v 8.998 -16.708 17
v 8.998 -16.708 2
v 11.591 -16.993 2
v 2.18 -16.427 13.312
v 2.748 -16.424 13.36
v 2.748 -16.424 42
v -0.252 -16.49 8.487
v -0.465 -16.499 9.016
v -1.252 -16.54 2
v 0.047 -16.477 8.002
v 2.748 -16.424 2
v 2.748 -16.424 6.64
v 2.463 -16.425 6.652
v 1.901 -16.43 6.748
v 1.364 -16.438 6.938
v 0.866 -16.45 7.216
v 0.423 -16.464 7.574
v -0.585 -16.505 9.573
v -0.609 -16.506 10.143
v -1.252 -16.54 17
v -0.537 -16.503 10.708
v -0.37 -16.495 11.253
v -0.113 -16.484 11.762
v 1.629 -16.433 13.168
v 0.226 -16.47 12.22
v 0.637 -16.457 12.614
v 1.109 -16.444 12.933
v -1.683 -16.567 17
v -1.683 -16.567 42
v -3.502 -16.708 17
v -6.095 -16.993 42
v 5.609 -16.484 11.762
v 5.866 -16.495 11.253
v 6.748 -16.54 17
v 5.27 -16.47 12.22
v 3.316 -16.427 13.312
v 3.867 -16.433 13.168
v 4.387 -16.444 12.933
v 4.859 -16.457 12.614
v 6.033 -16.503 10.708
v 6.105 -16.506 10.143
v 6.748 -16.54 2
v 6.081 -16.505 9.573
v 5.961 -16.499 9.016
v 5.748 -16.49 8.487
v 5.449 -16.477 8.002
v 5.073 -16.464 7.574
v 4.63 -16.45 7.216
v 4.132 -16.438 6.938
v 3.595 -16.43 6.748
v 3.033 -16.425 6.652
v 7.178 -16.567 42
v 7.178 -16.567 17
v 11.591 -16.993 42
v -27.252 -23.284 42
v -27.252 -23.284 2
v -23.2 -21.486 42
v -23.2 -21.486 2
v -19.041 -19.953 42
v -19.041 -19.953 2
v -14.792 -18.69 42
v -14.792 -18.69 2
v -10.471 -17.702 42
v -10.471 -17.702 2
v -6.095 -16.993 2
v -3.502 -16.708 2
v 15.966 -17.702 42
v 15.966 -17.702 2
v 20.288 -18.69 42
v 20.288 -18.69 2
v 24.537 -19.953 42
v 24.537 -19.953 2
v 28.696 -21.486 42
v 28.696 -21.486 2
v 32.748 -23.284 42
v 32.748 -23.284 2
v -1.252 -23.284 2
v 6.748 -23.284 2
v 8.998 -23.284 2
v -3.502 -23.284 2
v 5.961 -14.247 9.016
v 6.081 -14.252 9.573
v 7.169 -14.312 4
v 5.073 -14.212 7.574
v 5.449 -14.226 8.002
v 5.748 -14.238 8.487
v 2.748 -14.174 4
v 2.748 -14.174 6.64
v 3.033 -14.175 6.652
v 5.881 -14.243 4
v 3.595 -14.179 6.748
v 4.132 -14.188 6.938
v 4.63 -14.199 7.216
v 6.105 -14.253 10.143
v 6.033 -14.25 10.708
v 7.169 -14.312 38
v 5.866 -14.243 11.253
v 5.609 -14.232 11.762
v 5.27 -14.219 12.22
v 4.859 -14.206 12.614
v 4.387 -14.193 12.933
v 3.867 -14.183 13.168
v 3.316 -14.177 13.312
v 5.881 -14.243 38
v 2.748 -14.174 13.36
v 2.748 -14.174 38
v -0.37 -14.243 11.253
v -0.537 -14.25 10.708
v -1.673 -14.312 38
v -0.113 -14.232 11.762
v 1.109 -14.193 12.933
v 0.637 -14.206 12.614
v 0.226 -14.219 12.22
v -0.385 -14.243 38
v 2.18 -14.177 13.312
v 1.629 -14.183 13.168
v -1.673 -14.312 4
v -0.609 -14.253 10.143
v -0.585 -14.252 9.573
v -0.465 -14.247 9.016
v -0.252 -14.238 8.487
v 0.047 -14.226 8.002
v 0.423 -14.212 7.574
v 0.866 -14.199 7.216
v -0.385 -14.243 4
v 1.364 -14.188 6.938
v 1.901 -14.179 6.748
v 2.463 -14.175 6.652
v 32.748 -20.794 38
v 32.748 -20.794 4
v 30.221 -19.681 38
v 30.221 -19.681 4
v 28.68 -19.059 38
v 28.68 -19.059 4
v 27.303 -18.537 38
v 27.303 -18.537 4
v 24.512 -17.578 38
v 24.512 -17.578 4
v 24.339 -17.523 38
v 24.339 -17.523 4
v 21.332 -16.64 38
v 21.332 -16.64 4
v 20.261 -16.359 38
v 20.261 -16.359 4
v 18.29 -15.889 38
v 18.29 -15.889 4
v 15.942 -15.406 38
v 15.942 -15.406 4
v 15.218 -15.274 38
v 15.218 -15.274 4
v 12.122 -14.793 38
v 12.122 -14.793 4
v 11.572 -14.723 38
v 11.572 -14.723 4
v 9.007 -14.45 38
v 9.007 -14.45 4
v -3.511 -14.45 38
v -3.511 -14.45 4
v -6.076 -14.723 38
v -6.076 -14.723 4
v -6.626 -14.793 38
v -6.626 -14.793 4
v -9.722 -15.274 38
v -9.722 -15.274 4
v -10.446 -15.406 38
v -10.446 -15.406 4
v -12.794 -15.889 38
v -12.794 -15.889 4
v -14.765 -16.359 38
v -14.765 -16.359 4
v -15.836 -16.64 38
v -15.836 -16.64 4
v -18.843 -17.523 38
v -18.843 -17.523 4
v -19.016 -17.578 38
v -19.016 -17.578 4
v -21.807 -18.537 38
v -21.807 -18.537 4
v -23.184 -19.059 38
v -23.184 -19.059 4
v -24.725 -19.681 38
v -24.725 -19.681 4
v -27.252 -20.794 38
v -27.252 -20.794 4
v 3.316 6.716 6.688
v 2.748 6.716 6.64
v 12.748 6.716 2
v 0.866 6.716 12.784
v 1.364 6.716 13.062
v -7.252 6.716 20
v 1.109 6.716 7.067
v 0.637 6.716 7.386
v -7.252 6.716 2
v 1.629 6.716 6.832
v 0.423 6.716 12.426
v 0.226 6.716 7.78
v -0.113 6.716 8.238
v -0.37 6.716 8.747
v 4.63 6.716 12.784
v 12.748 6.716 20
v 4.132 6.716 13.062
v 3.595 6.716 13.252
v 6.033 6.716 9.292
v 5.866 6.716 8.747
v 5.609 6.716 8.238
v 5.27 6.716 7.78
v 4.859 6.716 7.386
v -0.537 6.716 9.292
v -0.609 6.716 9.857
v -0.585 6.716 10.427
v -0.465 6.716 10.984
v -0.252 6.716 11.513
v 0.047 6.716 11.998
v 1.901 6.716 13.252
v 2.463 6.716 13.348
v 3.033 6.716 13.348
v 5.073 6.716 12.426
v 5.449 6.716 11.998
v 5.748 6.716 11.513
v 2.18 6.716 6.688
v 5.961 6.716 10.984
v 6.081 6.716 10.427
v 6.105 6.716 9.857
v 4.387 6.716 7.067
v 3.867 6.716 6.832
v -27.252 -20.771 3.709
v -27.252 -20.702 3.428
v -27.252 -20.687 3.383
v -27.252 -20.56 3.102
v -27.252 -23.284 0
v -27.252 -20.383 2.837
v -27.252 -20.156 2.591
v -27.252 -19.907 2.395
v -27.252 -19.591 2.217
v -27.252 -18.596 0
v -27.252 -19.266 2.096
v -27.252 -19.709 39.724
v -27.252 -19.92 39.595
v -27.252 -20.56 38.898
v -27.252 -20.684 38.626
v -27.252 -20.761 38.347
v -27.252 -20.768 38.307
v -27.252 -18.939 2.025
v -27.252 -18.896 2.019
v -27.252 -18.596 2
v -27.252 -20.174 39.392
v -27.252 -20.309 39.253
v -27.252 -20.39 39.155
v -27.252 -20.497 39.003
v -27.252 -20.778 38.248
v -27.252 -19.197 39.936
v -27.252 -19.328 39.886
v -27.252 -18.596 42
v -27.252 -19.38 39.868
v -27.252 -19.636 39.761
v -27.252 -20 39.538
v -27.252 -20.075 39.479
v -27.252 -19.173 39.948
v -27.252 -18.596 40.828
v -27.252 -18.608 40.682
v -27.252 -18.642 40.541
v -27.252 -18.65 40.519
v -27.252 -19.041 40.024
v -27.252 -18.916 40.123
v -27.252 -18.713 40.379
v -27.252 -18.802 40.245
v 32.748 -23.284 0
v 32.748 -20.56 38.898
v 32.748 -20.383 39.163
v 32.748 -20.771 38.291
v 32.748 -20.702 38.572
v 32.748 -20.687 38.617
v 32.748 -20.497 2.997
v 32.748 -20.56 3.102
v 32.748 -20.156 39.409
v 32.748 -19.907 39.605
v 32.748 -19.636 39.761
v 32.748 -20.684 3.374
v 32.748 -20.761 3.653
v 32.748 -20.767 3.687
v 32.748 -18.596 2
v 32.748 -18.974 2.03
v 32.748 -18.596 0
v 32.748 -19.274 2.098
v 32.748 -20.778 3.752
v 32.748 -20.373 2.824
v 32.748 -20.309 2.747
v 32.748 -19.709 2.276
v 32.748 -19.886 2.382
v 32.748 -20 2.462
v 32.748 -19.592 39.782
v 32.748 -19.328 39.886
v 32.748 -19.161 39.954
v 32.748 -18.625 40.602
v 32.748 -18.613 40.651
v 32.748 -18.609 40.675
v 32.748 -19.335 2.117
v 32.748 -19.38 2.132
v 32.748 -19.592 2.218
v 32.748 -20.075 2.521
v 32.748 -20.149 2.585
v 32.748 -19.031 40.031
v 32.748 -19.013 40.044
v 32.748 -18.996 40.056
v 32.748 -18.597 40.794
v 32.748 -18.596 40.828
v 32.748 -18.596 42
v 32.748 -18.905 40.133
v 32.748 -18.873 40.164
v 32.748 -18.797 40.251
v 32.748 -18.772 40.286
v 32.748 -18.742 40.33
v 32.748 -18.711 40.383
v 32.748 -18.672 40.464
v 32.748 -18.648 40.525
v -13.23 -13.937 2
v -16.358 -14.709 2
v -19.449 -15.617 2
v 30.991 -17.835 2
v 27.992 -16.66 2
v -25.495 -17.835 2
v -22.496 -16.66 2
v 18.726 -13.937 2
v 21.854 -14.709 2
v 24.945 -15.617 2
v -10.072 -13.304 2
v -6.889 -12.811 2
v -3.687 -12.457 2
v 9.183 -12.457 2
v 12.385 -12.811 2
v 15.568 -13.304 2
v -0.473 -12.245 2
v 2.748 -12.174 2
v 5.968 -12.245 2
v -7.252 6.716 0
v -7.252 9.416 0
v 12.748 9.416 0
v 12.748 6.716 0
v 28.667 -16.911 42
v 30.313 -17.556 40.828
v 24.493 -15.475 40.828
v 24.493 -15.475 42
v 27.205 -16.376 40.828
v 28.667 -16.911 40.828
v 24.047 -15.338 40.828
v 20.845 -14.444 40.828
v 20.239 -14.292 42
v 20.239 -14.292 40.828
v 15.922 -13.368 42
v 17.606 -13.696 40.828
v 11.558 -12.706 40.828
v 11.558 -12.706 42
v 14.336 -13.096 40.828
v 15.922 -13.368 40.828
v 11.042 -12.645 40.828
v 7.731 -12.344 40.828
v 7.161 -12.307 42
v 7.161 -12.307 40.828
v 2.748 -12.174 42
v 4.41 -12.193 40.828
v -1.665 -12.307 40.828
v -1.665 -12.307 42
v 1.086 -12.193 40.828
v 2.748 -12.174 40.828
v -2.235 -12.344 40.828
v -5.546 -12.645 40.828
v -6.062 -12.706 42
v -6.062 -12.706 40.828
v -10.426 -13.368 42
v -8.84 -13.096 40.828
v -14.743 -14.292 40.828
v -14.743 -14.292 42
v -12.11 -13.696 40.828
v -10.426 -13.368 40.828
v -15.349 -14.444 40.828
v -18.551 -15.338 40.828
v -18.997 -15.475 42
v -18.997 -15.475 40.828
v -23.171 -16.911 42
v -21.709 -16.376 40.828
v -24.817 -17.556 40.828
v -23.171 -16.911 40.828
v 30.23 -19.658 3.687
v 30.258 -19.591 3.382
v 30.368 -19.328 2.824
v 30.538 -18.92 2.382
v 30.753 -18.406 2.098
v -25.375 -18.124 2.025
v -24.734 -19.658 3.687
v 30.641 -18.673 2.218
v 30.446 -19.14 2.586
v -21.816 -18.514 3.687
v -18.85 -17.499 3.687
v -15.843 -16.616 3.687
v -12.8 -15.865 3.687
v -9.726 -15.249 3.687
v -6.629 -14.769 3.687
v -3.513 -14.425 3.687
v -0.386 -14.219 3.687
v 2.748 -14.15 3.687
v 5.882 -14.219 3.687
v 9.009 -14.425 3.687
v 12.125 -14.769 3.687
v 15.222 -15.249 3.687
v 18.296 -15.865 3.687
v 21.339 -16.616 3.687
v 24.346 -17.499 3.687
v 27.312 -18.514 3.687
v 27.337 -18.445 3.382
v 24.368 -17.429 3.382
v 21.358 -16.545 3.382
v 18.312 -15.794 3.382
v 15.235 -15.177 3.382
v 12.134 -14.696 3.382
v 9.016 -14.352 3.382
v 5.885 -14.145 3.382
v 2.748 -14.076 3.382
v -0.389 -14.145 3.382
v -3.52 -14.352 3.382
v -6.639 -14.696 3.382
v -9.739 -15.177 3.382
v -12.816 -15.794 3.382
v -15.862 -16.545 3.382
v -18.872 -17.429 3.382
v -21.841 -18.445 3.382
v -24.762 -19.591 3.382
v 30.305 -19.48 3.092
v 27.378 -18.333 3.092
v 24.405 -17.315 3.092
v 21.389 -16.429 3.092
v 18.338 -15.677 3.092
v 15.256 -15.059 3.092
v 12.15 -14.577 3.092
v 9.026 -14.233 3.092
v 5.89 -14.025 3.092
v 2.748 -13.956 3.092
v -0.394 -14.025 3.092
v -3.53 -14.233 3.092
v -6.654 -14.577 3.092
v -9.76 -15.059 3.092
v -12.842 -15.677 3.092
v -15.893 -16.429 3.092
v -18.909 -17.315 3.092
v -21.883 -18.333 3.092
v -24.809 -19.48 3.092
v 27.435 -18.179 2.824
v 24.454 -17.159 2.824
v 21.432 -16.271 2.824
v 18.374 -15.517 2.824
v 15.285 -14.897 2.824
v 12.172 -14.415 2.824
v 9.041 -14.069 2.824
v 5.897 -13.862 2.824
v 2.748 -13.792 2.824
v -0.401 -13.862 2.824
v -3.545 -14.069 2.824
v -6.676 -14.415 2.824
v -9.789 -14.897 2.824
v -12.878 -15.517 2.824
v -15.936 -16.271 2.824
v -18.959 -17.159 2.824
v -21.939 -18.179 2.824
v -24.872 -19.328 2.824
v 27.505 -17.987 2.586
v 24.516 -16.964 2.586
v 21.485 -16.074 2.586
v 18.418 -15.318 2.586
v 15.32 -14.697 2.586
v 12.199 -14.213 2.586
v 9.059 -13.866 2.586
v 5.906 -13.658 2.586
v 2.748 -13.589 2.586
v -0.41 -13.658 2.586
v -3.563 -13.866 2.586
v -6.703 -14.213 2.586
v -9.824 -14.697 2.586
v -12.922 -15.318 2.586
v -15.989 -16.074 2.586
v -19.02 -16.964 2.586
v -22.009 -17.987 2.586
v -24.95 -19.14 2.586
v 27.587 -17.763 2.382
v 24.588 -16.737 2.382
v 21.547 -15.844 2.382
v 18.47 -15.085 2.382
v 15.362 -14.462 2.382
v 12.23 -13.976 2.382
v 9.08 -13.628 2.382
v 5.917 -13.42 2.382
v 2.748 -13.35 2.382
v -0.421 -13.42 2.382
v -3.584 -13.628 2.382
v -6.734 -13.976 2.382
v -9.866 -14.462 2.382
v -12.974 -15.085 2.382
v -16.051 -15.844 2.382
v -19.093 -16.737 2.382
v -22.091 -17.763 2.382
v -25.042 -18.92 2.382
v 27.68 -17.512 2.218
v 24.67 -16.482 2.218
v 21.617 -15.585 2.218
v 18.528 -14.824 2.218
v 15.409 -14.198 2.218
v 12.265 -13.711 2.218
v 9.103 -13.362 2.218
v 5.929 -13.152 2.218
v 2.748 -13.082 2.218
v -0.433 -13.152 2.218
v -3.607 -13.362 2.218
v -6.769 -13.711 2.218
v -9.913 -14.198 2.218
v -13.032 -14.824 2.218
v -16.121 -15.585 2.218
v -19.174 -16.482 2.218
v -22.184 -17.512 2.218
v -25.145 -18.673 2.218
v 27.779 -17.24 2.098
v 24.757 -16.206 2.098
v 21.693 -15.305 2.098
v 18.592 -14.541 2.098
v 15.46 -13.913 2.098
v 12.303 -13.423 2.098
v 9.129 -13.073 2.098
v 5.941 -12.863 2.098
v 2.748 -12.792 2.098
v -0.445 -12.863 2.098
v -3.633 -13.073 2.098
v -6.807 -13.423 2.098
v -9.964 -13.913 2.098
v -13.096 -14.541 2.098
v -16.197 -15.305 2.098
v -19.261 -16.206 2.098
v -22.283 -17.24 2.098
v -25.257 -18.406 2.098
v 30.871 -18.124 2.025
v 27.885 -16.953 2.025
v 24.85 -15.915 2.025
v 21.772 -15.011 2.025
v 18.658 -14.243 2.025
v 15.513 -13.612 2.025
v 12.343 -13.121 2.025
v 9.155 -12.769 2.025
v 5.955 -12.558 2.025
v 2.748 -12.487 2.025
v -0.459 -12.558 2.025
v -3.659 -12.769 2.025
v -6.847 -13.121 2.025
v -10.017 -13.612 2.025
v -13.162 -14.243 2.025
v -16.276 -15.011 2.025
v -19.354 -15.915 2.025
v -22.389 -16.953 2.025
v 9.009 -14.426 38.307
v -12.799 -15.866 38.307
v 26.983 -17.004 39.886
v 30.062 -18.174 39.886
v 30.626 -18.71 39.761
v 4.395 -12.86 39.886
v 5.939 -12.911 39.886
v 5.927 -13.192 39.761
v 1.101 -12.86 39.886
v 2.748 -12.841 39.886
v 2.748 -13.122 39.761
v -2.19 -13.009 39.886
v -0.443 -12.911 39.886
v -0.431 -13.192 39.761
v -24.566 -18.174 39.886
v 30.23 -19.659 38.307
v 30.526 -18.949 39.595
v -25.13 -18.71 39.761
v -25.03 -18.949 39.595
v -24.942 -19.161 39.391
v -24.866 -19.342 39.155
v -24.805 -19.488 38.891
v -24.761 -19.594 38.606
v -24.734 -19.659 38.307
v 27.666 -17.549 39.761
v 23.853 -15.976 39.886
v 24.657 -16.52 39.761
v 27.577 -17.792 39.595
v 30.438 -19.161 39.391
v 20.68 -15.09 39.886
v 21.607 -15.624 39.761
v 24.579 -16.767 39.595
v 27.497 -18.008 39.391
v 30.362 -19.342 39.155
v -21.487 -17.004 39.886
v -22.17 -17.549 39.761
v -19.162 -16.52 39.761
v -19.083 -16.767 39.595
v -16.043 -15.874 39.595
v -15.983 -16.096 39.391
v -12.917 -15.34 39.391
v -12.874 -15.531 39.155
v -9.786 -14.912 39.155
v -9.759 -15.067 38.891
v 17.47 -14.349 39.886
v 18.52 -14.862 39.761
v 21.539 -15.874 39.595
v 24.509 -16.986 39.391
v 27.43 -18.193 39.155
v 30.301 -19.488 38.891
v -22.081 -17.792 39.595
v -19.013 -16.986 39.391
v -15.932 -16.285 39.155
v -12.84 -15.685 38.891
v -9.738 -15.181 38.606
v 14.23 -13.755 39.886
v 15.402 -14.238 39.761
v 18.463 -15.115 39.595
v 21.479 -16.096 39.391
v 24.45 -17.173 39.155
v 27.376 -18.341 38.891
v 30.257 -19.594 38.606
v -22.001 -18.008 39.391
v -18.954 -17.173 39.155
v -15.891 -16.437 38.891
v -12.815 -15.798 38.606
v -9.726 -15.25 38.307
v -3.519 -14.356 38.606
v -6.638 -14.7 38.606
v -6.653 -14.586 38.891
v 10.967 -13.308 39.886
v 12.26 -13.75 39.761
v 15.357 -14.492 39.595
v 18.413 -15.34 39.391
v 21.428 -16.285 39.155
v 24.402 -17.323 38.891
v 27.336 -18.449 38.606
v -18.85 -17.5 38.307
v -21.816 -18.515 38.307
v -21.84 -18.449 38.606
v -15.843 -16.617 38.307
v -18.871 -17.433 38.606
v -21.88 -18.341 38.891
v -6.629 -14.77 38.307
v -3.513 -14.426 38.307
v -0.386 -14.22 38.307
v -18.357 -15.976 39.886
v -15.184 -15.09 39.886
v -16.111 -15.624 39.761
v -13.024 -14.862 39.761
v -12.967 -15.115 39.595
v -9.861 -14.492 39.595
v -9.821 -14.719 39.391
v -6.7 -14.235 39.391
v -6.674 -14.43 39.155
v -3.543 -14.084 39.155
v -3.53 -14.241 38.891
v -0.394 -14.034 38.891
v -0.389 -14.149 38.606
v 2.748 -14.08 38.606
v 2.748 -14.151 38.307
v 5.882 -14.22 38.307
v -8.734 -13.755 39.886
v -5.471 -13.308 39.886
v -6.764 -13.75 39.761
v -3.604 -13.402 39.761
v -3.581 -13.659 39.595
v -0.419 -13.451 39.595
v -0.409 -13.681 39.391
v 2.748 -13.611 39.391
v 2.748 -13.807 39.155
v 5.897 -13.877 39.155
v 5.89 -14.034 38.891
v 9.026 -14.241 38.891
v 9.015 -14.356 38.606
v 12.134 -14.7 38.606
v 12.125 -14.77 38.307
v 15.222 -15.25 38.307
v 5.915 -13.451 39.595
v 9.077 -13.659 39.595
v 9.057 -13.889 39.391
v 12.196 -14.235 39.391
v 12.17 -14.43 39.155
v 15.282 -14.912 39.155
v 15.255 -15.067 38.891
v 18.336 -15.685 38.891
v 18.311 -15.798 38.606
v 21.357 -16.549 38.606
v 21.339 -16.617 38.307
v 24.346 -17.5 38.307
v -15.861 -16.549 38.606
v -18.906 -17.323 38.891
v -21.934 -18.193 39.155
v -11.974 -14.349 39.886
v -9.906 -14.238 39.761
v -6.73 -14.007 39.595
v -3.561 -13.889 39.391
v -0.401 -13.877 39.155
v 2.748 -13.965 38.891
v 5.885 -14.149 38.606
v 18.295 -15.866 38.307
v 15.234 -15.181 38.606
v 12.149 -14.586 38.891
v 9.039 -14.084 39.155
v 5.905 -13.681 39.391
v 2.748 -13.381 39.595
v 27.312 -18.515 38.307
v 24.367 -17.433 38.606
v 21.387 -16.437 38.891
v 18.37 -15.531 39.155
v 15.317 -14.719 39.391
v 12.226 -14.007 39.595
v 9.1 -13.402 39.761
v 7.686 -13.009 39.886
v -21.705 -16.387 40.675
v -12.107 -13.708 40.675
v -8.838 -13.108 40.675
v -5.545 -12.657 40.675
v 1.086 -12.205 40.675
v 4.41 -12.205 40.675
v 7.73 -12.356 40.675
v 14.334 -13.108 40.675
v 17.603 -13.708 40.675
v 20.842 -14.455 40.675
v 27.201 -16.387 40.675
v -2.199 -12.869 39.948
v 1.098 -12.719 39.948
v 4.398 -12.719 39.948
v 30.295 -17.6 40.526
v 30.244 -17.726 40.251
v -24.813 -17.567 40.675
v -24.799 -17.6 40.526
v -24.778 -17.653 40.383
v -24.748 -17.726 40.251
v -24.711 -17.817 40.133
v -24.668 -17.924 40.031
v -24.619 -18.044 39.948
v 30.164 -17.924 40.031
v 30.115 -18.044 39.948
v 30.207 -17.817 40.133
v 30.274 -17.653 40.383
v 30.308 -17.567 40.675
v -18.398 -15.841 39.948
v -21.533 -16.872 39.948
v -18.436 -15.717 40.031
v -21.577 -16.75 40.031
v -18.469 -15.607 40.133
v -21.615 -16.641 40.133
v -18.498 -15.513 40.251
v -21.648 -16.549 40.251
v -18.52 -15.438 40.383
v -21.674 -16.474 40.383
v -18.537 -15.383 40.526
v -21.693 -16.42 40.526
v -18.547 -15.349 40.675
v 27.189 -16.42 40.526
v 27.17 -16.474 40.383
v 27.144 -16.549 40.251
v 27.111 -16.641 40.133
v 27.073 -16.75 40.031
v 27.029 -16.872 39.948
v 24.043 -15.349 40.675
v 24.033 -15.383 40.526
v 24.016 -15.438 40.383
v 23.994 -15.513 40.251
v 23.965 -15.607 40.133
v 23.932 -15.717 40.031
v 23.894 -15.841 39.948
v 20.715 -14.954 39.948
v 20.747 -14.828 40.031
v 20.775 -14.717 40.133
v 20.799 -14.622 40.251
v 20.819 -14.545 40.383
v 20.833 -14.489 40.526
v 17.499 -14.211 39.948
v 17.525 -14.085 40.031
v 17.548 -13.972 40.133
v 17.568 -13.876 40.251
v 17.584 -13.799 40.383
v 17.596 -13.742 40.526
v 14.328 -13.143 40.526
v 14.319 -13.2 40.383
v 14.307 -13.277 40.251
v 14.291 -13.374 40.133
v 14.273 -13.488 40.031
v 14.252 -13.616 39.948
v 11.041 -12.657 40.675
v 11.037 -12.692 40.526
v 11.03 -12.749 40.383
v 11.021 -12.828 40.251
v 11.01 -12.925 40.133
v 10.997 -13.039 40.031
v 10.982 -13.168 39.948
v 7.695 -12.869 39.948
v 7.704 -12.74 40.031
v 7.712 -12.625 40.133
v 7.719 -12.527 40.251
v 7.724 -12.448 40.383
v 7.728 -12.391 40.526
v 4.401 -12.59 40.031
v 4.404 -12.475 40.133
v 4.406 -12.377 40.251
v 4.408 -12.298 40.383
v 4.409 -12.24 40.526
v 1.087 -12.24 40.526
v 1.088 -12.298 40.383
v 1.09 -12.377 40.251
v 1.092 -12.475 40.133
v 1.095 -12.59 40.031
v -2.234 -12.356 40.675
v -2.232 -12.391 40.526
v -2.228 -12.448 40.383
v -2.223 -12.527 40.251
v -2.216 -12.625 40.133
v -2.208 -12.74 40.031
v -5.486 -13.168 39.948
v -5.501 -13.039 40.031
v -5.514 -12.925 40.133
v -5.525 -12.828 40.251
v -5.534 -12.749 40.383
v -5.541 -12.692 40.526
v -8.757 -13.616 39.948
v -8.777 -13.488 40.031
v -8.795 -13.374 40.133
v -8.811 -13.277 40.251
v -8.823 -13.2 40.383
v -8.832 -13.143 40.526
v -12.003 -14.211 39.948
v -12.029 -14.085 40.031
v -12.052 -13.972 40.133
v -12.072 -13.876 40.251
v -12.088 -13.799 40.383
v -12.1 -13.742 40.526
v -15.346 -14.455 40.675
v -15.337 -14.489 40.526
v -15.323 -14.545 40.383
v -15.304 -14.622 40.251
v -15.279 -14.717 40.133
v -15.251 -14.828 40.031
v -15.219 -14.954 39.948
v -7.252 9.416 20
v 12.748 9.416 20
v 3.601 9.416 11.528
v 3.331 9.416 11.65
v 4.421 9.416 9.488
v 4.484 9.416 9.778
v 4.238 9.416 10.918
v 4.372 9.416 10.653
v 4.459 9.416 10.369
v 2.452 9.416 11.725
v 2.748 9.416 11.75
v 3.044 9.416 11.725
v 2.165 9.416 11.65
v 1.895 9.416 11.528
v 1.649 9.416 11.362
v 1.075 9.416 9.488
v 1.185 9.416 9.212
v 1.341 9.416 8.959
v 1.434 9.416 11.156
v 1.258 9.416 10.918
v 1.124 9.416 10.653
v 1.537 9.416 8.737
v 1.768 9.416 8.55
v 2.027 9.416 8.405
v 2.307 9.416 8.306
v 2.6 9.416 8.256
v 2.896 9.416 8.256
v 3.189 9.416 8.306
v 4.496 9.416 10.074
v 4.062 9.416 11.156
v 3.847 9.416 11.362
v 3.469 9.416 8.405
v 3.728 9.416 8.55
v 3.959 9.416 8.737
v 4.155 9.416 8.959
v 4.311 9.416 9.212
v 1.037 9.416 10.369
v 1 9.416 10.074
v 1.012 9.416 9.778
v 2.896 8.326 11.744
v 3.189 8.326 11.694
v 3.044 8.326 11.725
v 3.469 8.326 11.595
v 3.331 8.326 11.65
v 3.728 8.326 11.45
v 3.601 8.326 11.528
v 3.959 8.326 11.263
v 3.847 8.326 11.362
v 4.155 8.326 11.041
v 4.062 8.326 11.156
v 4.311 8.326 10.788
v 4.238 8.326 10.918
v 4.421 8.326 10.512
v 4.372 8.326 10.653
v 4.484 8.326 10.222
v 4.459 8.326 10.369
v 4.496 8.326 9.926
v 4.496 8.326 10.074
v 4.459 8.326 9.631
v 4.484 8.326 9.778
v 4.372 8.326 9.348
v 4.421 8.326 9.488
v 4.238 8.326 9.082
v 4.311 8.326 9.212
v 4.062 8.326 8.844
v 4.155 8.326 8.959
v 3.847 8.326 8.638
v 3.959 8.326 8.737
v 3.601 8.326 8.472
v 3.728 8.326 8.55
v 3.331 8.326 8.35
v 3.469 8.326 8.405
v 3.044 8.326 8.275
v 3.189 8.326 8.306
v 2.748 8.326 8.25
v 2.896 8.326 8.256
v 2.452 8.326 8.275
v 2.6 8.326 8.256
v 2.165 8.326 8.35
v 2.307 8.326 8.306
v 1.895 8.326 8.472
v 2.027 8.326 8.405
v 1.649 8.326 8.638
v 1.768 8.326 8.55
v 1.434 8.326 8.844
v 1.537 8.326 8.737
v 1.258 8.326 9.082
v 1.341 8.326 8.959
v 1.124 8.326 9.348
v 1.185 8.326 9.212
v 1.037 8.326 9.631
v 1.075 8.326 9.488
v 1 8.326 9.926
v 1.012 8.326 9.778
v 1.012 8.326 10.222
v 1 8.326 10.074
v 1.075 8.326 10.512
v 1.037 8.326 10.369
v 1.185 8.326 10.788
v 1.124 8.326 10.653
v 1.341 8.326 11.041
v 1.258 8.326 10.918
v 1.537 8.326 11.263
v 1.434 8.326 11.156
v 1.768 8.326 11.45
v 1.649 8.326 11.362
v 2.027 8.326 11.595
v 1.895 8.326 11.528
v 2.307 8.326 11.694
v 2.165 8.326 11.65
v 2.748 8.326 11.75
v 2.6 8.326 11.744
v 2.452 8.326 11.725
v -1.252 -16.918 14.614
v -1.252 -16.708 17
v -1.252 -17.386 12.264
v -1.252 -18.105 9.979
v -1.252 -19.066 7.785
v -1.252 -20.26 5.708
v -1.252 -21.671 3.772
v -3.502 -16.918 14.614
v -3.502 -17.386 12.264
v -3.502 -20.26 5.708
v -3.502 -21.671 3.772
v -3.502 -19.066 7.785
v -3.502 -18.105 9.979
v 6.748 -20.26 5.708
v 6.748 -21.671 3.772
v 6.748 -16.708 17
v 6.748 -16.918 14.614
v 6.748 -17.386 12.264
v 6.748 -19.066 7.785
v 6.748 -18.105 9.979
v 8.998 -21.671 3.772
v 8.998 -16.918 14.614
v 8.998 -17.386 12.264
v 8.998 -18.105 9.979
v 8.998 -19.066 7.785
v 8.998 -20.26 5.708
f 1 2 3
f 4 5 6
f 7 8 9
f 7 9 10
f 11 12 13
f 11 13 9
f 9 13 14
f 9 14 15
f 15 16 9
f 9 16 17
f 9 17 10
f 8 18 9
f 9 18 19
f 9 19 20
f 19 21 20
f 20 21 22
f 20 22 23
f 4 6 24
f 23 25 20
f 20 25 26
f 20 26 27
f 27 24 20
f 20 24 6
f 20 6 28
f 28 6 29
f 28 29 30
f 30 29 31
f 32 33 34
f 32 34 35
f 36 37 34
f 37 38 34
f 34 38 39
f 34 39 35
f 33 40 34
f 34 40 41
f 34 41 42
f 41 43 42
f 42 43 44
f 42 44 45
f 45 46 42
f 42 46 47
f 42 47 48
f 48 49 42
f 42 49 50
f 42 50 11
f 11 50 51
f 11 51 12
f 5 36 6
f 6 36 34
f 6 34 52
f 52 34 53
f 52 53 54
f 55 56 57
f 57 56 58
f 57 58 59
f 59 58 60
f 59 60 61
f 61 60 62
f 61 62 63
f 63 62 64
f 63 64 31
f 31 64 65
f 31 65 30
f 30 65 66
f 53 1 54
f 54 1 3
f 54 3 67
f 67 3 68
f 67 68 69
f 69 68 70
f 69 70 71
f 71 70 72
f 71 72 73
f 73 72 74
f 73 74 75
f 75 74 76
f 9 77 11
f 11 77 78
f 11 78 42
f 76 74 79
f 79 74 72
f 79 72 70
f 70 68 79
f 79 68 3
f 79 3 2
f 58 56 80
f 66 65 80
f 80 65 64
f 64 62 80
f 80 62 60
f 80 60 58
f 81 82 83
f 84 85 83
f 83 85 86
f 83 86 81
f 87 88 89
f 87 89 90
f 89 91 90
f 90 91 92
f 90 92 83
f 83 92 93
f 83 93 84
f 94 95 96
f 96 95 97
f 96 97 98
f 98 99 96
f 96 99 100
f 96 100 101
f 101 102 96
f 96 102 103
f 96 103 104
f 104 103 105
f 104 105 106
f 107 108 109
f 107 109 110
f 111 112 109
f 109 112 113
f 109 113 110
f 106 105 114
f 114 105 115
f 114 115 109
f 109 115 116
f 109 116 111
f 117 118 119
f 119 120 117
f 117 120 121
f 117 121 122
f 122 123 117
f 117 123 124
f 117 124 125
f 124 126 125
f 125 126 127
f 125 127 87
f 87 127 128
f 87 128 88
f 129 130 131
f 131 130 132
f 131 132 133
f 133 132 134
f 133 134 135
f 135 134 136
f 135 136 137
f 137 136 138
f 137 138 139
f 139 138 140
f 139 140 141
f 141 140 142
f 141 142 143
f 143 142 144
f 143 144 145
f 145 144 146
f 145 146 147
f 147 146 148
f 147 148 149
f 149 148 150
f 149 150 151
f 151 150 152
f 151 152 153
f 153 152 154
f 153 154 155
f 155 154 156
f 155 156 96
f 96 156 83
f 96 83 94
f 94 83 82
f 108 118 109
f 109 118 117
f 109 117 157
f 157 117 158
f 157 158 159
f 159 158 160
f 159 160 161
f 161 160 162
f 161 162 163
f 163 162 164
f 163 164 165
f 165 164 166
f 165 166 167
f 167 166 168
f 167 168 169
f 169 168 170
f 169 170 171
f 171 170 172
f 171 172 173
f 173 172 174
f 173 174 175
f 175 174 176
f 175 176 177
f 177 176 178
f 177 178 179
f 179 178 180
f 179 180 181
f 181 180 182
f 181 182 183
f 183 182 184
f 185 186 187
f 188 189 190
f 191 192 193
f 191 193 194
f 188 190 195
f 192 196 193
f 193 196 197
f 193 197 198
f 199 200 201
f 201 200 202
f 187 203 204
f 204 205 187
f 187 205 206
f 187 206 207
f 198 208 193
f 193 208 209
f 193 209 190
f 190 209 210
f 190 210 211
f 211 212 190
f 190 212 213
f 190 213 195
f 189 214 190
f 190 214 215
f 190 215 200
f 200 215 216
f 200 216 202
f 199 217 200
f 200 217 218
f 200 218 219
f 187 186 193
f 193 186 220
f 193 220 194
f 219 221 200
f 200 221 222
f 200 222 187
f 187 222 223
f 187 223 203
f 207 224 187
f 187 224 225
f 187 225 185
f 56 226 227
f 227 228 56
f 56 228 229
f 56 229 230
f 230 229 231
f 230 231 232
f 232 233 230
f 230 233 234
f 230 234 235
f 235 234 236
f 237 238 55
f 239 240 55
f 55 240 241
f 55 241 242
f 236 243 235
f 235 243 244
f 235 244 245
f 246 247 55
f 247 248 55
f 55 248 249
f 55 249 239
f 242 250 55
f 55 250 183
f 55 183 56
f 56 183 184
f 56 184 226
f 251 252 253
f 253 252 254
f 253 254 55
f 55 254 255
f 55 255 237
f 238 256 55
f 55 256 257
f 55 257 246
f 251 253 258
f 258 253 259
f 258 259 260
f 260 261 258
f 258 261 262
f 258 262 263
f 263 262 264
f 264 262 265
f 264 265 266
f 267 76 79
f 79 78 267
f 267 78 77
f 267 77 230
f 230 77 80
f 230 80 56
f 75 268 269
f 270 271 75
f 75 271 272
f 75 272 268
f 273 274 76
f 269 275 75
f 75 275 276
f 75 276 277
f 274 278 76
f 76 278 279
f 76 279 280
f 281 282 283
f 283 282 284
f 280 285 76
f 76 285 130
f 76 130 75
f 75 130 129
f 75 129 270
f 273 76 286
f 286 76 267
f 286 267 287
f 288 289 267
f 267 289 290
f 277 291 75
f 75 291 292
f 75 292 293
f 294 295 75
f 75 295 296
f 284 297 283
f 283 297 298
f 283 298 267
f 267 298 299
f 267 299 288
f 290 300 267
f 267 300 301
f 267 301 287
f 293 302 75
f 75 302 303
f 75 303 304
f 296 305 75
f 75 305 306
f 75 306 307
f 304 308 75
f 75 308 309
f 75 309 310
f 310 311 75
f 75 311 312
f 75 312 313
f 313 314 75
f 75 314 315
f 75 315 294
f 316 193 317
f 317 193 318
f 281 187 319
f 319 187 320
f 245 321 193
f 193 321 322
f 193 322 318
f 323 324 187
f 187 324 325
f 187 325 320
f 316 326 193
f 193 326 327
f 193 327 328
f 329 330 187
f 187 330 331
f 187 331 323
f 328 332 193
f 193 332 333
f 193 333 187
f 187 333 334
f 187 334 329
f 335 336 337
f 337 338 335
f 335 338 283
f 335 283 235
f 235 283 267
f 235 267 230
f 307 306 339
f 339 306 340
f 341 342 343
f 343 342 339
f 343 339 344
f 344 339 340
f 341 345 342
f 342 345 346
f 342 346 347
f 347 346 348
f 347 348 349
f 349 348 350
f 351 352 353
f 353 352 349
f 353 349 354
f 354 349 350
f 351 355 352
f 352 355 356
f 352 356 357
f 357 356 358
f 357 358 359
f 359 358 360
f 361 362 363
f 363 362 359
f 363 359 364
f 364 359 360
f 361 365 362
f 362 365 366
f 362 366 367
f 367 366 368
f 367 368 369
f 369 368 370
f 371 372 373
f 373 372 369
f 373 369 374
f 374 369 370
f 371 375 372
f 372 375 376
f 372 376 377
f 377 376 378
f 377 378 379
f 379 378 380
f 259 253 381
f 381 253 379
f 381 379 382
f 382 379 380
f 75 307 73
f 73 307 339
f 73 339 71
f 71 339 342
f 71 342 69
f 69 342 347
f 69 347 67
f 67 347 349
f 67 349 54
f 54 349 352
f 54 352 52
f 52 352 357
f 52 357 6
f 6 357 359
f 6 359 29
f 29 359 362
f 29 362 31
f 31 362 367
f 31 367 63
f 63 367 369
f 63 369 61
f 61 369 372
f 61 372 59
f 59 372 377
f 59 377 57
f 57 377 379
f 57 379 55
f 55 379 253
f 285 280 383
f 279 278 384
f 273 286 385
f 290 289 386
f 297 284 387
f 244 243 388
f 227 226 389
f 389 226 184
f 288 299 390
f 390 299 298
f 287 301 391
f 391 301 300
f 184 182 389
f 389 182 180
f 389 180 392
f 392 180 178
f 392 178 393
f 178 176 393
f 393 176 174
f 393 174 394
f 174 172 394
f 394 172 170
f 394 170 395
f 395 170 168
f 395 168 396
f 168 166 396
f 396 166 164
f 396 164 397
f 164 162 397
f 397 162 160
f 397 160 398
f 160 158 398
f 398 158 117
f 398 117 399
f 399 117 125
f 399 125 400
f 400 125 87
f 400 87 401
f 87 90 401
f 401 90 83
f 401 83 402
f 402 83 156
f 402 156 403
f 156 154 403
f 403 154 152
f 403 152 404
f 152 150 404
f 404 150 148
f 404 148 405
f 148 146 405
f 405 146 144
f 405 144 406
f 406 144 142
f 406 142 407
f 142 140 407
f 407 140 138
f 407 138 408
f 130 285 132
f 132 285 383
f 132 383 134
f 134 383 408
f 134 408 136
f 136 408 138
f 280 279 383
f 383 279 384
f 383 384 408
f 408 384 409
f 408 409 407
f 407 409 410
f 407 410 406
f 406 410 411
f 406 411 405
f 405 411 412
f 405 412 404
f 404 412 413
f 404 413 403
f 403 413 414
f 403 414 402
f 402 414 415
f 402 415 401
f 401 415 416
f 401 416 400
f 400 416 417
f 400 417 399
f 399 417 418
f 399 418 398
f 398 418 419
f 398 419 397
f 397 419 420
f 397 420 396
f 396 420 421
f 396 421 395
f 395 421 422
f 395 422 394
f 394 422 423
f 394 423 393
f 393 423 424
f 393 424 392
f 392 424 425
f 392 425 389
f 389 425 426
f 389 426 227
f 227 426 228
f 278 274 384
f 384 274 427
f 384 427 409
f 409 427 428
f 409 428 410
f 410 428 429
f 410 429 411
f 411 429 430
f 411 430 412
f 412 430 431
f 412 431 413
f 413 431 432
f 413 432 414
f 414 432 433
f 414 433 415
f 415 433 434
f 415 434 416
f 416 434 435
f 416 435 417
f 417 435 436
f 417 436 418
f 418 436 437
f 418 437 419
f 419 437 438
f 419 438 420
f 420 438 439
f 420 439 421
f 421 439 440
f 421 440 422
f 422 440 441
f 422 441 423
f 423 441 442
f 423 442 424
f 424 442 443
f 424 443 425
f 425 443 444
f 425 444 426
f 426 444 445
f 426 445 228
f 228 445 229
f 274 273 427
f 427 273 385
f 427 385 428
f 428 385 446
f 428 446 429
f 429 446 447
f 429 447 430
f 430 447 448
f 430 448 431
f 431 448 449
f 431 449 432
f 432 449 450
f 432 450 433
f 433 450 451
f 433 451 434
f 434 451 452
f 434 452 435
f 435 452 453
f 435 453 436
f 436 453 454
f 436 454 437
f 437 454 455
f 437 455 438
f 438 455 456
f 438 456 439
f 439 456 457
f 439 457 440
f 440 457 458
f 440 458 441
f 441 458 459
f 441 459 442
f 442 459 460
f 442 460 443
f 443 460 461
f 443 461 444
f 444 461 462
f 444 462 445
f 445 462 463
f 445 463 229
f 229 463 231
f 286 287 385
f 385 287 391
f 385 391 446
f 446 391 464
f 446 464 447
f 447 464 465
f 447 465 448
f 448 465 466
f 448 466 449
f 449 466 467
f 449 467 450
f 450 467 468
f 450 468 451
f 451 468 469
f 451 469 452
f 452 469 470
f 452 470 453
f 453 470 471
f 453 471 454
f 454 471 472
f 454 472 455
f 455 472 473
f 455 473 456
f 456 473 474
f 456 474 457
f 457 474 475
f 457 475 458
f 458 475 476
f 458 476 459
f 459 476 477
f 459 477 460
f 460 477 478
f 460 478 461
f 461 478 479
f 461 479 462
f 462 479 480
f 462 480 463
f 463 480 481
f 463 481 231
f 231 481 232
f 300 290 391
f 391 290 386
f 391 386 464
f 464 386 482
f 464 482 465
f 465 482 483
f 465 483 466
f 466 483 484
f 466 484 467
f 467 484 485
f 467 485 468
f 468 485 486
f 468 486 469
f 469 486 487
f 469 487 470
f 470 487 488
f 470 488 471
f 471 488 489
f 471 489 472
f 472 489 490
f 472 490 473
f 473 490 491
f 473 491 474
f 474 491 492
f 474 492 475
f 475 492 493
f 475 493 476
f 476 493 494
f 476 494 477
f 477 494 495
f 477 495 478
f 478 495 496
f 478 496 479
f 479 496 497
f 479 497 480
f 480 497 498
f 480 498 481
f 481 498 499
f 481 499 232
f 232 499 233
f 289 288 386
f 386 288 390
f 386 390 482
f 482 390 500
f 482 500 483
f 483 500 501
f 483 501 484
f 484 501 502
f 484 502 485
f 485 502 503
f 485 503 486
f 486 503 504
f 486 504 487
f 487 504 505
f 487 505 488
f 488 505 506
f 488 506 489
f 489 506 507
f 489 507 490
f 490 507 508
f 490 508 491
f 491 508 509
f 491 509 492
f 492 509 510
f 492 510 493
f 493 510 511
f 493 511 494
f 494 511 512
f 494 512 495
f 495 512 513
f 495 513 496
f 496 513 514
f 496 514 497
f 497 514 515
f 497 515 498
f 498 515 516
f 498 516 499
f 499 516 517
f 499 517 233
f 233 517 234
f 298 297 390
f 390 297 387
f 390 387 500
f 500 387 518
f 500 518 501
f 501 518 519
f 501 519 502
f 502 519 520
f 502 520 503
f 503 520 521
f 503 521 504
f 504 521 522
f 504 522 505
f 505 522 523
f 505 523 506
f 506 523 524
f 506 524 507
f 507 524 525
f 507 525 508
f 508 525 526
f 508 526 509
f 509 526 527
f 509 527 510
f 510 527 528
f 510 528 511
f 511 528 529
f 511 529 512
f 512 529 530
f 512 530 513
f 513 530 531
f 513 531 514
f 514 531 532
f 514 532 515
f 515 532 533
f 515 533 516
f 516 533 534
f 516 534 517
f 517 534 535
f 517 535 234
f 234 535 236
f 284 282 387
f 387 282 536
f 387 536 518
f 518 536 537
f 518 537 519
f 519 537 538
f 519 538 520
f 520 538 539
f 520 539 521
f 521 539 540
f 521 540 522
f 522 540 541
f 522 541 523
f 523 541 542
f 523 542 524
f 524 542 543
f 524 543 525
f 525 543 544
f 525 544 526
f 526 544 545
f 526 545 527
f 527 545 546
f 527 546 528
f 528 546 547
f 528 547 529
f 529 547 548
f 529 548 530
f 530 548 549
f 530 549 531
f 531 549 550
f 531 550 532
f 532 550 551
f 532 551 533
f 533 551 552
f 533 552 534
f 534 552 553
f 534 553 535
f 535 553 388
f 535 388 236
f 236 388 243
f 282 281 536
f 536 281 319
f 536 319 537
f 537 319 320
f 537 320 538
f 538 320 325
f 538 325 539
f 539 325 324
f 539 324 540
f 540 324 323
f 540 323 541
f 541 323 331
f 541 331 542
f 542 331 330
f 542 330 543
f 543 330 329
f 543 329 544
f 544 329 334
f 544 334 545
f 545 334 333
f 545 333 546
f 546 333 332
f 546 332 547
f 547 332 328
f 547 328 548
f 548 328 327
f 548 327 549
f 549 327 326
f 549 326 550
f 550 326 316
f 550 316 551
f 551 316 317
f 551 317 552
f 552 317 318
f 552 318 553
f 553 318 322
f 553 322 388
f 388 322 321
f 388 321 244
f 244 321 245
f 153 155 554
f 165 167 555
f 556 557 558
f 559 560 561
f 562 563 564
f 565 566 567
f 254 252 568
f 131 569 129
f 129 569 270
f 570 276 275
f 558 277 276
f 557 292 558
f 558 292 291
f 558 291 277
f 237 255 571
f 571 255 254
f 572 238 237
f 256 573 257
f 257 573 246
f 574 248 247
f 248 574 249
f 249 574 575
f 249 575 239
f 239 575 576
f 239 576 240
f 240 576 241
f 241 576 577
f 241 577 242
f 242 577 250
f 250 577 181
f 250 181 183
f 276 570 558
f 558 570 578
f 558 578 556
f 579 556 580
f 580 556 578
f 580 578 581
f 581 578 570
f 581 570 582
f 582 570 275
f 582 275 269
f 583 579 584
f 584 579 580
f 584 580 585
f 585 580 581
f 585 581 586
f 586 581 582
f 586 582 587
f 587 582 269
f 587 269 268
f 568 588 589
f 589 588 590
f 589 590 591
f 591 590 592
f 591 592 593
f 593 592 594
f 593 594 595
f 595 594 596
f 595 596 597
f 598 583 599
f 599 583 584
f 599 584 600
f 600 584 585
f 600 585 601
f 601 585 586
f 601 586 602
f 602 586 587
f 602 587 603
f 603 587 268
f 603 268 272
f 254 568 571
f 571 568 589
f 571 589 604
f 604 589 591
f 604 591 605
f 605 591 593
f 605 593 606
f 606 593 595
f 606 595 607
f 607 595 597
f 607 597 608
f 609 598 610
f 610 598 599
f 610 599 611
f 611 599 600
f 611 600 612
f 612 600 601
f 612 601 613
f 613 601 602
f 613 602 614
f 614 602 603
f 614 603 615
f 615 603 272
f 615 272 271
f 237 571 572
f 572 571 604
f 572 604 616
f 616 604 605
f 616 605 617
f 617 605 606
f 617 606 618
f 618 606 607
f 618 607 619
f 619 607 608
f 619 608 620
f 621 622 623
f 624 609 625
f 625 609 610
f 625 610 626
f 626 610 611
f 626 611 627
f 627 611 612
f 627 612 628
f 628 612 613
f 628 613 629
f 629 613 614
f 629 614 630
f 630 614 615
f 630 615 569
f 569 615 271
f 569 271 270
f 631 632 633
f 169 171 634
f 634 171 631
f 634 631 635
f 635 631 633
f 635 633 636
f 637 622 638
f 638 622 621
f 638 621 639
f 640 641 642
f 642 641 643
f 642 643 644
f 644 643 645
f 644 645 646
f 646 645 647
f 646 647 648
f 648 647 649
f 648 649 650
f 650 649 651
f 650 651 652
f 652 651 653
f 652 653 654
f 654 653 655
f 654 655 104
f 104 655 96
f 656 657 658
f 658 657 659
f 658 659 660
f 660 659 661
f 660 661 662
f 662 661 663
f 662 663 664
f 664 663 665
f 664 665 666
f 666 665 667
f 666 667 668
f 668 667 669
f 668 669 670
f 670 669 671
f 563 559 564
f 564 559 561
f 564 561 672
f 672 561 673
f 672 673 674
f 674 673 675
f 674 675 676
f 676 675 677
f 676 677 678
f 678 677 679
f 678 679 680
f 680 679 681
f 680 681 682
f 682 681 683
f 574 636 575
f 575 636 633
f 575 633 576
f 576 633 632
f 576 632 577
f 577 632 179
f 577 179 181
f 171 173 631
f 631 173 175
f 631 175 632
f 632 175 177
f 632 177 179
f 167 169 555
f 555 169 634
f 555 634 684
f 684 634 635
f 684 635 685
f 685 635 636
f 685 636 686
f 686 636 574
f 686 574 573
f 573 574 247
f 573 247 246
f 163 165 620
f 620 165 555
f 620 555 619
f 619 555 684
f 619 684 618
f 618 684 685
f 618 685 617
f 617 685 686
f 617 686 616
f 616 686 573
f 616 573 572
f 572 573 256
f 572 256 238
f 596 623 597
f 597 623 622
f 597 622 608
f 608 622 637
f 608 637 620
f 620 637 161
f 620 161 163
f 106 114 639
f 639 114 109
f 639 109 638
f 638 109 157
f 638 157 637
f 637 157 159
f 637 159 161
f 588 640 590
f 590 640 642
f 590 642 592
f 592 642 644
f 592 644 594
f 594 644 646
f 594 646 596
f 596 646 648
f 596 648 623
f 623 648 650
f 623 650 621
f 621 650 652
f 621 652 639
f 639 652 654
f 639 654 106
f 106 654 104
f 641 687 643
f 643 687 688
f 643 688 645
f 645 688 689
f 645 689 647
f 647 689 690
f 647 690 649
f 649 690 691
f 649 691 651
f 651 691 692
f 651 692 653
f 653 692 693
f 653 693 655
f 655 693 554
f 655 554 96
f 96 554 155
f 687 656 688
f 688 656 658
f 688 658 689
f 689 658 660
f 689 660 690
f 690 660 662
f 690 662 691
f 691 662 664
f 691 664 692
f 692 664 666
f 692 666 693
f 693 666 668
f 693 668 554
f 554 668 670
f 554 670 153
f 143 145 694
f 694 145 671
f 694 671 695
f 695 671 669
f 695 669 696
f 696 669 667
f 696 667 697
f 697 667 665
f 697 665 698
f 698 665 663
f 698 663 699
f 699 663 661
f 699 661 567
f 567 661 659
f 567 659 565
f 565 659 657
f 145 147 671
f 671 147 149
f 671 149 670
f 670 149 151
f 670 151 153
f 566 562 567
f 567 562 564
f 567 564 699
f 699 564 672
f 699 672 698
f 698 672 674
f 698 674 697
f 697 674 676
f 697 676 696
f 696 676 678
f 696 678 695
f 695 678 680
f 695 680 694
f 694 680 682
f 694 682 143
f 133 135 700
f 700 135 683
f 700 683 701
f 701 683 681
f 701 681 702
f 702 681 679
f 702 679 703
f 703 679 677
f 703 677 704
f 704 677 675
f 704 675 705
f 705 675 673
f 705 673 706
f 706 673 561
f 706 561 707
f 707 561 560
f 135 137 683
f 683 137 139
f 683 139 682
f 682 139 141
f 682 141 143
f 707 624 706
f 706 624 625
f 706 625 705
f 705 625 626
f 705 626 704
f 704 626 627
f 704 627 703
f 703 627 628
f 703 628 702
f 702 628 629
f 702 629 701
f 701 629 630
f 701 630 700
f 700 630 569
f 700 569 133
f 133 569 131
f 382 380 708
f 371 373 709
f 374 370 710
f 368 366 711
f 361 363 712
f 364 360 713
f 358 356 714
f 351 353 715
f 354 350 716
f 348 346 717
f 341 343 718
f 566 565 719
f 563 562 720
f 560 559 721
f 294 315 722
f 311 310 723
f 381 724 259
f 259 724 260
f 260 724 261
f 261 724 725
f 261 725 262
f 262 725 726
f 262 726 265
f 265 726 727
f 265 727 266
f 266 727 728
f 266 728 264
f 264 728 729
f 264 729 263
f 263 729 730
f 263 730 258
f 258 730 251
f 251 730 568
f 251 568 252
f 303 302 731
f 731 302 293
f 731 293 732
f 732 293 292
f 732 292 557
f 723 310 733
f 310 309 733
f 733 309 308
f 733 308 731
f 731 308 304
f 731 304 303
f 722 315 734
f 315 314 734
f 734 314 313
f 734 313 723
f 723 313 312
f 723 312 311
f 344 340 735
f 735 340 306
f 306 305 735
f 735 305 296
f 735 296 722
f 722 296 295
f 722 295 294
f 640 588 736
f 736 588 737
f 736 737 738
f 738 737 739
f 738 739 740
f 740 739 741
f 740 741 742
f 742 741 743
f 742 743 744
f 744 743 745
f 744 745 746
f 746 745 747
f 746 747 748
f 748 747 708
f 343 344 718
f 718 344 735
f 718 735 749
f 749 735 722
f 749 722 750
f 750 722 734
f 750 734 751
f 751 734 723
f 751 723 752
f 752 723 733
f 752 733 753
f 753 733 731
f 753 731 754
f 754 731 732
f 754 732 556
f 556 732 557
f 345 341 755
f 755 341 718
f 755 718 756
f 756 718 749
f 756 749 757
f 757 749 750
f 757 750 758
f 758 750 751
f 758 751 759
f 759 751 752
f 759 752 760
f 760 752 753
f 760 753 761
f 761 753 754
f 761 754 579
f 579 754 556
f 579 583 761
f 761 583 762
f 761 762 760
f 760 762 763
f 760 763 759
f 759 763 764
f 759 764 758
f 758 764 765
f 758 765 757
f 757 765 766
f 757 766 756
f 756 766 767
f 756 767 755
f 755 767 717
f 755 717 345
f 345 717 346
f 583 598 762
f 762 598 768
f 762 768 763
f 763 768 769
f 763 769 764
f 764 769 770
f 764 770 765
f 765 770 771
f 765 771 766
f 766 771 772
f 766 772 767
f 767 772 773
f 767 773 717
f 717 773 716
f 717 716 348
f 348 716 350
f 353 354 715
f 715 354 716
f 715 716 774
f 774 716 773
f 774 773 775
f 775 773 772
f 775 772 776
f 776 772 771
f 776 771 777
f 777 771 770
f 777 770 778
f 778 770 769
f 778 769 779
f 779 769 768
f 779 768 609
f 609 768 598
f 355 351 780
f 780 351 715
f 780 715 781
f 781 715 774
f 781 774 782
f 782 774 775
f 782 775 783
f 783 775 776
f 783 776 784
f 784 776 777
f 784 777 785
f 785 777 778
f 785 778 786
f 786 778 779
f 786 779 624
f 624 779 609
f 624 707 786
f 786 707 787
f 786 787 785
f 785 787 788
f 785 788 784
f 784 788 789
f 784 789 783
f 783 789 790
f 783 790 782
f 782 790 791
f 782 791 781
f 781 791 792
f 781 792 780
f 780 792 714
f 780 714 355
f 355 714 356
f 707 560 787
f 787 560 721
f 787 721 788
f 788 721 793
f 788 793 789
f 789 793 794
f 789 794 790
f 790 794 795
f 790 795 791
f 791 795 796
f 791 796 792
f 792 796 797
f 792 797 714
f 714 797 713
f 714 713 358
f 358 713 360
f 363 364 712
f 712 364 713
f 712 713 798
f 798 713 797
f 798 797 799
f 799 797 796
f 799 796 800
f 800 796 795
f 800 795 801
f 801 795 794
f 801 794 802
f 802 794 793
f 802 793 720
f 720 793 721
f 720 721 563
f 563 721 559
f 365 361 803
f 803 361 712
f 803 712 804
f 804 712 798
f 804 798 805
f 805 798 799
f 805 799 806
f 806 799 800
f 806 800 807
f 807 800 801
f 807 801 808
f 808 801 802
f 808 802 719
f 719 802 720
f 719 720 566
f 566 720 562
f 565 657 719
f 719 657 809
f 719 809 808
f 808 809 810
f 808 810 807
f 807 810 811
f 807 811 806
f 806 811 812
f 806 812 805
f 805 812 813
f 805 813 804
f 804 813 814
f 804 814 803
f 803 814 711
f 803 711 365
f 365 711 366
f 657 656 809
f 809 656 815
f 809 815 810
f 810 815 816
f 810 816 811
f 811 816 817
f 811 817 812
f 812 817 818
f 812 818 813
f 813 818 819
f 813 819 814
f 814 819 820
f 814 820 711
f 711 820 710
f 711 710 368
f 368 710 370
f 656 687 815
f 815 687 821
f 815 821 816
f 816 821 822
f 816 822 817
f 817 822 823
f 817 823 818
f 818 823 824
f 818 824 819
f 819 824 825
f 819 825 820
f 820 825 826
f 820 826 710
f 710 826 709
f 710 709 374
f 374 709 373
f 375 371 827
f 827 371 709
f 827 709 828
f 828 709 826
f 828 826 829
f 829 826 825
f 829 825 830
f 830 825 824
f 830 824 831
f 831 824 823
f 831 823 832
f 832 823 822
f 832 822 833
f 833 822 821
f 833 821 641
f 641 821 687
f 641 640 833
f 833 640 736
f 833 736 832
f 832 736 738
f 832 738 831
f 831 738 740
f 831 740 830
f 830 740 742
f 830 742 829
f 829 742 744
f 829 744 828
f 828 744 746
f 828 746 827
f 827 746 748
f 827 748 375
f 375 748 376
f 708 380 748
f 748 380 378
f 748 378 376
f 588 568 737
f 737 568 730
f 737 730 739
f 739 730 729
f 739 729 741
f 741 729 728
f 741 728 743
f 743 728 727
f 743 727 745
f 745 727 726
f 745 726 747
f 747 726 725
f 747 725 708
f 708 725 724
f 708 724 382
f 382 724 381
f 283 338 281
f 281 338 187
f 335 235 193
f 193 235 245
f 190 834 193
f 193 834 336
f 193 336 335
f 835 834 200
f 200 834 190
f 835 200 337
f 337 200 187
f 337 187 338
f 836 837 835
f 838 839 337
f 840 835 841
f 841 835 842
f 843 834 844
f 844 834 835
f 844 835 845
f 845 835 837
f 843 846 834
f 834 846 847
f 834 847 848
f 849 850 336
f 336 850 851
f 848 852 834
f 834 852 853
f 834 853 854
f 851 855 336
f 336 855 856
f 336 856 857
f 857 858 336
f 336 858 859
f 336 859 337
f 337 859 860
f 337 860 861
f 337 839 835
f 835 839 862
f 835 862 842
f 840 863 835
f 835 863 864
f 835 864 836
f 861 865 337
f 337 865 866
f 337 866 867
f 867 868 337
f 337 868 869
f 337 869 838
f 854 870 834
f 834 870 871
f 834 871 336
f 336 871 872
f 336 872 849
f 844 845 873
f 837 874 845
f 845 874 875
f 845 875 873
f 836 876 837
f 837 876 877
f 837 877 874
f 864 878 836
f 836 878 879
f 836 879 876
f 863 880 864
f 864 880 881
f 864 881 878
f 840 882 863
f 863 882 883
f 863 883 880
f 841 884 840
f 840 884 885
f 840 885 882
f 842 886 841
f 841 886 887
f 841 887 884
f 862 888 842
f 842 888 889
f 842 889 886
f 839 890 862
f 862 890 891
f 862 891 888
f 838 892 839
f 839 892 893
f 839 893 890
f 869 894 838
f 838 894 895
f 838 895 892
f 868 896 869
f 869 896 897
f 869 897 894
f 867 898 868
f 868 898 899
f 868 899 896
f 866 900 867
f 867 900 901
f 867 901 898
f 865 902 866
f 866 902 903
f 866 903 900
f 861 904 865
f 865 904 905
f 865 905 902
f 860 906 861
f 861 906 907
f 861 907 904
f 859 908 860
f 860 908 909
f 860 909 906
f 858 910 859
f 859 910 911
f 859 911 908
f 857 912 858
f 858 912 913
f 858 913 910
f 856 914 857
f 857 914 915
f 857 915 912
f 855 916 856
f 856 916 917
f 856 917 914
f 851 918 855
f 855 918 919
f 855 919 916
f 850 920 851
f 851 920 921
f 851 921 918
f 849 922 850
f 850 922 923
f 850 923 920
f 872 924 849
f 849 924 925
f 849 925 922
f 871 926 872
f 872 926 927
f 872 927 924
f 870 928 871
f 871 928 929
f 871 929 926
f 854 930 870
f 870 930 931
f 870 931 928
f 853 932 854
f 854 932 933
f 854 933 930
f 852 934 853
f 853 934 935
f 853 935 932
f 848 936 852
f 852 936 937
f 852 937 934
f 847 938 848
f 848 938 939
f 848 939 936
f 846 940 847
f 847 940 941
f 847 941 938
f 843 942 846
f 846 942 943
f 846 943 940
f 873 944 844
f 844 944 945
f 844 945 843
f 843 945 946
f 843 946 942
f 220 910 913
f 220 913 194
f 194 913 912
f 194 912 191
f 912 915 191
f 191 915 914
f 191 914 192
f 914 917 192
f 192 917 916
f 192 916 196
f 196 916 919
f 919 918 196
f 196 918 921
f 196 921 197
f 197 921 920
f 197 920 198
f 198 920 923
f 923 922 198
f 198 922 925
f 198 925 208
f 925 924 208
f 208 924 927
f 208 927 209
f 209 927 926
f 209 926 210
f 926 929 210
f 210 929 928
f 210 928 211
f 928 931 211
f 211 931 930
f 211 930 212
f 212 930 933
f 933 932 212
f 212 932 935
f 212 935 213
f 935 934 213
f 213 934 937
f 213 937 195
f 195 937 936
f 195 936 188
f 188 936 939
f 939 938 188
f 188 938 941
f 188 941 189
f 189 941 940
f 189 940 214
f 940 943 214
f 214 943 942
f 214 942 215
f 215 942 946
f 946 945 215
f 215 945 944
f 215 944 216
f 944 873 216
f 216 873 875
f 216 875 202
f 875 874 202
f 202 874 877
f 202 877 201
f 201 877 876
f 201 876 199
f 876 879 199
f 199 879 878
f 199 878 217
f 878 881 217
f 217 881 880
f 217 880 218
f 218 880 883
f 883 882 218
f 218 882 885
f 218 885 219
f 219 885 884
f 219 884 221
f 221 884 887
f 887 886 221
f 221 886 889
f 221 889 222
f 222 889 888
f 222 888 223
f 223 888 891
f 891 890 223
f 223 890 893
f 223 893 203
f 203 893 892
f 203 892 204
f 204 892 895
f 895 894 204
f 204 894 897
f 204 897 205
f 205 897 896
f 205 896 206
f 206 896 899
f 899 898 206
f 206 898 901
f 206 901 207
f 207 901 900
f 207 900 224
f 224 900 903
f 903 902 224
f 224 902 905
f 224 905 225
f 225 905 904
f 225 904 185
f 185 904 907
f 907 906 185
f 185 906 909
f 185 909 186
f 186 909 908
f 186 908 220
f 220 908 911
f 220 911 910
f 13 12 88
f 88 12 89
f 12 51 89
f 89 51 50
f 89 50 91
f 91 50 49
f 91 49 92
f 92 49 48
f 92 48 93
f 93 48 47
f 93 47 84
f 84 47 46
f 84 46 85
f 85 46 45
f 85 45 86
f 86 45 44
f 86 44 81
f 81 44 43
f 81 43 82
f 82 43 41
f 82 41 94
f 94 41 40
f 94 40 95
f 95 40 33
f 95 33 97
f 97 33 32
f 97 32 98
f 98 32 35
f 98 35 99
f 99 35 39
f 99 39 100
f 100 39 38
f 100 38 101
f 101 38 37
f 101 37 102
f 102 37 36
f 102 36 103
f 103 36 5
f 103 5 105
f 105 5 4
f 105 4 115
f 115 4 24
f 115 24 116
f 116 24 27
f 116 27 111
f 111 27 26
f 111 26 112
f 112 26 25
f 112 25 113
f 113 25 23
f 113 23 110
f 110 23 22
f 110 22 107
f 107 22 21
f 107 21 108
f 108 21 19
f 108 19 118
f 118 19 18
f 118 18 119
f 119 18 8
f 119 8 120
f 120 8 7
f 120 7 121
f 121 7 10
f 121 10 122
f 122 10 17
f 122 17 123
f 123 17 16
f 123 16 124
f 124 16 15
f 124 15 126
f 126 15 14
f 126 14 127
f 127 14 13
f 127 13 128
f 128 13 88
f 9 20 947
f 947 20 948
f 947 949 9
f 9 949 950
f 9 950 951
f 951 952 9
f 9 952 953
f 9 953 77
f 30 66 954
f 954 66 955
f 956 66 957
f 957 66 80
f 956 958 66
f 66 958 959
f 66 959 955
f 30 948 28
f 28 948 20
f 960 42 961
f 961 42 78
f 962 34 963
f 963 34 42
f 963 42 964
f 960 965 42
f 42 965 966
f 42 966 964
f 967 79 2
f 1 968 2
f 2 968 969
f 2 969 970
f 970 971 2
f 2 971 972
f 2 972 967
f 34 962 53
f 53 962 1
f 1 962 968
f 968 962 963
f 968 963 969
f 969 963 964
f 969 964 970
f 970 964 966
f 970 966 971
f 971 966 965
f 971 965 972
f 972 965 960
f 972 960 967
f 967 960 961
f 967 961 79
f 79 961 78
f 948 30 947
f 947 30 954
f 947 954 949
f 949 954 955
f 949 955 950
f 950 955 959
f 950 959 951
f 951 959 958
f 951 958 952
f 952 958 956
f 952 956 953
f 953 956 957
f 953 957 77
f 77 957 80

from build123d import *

# Parameters (mm, degrees)
CROQUIS1_W              = 60
CROQUIS1_H              = 30
SALIENTE_EXTRUIR1_DEPTH = 2
SALIENTE_EXTRUIR2_DEPTH = 38
SALIENTE_EXTRUIR4_DEPTH = 2
REDONDEO1_R             = 2
REDONDEO2_R             = 1
CORTAR_EXTRUIR2_DEPTH   = 2
CROQUIS7_W              = 20
CROQUIS7_H              = 20
SALIENTE_EXTRUIR5_DEPTH = 2.7
CROQUIS8_R              = 1.75
CORTAR_EXTRUIR3_DEPTH   = 2.7
CROQUIS11_R             = 3.36
CORTAR_EXTRUIR4_DEPTH   = 50
SALIENTE_EXTRUIR3_DEPTH = 15
CORTAR_EXTRUIR1_START   = -12.5
CORTAR_EXTRUIR1_DEPTH   = 12.5


with BuildPart() as part:
    # Croquis1 → Saliente-Extruir1 (new body)
    with BuildSketch(Plane.XY):
        with Locations((2.747988453, -8.28358209)):
            Rectangle(CROQUIS1_W, CROQUIS1_H)
    extrude(amount=SALIENTE_EXTRUIR1_DEPTH)

    # Croquis2 → Saliente-Extruir2 (add)
    with BuildSketch(Plane.XY.offset(2)):
        with BuildLine():
            Line((-27.252011547, -23.28358209), (-27.252011547, -20.794473938))
            ThreePointArc((-27.252011547, -20.794473938), (2.747988453, -14.174360447), (32.747988453, -20.794473938))
            Line((32.747988453, -20.794473938), (32.747988453, -23.28358209))
            ThreePointArc((32.747988453, -23.28358209), (2.747988453, -16.424360447), (-27.252011547, -23.28358209))
        make_face()
    extrude(amount=SALIENTE_EXTRUIR2_DEPTH)

    # Croquis5 → Saliente-Extruir4 (add)
    with BuildSketch(Plane.XY.offset(40)):
        with BuildLine():
            Line((32.747988453, -23.28358209), (32.747988453, -18.596159377))
            ThreePointArc((32.747988453, -18.596159377), (2.747988453, -12.174360447), (-27.252011547, -18.596159377))
            Line((-27.252011547, -18.596159377), (-27.252011547, -23.28358209))
            ThreePointArc((-27.252011547, -23.28358209), (2.747988453, -16.424360447), (32.747988453, -23.28358209))
        make_face()
    extrude(amount=SALIENTE_EXTRUIR4_DEPTH)

    # Redondeo1
    redondeo1_edges = [part.edges().sort_by_distance(p)[0] for p in [
        (2.747988453, -14.174360447, 2),
        (2.747988453, -14.174360447, 40),
    ]]
    fillet(redondeo1_edges, radius=REDONDEO1_R - 0.0001)  # a hair under: the kernel refuses the full size

    # Redondeo2
    redondeo2_edges = [part.edges().sort_by_distance(p)[0] for p in [
        (2.747988453, -12.174360447, 40),
    ]]
    fillet(redondeo2_edges, radius=REDONDEO2_R)

    # Croquis6 → Cortar-Extruir2 (cut)
    with BuildSketch(Plane.XY.offset(2)):
        Polygon((-27.252011547, -18.596159377), (-7.252011547, 6.71641791), (-27.252011547, 6.71641791), align=None)
        Polygon((12.747988453, 6.71641791), (32.747988453, 6.71641791), (32.747988453, -18.596159377), align=None)
    extrude(amount=-CORTAR_EXTRUIR2_DEPTH, mode=Mode.SUBTRACT)

    # Croquis7 → Saliente-Extruir5 (add)
    with BuildSketch(Plane(origin=(0, 6.71641791, 0), x_dir=(1, 0, 0), z_dir=(0, 1, 0))):
        with Locations((2.747988453, -10)):
            Rectangle(CROQUIS7_W, CROQUIS7_H)
    extrude(amount=SALIENTE_EXTRUIR5_DEPTH)

    # Croquis8 → Cortar-Extruir3 (cut)
    with BuildSketch(Plane(origin=(0, 9.41641791, 0), x_dir=(1, 0, 0), z_dir=(0, 1, 0))):
        with Locations(Location((2.747988453, -10, 0), (0, 0, 270))):
            Circle(CROQUIS8_R)
    extrude(amount=-CORTAR_EXTRUIR3_DEPTH, mode=Mode.SUBTRACT)

    # Croquis10 → Refrentado para tornillo tapón con cabeza plana de clavija de M31 (revolve, cut)
    with BuildSketch(Plane(origin=(2.747988453, 6.71641791, 10), x_dir=(0, 0, -1), z_dir=(1, 0, 0))):
        Polygon((0, 0), (0, 2.7), (1.7, 2.7), (1.7, 1.66), (3.36, 0), align=None)
    revolve(axis=Axis((2.747988453, 0.36641791, 10), (0, 1, 0)), mode=Mode.SUBTRACT)

    # Croquis11 → Cortar-Extruir4 (cut)
    with BuildSketch(Plane.XZ.offset(-6.71641791)):
        with Locations(Location((2.747988453, 10, 0), (0, 0, 90))):
            Circle(CROQUIS11_R)
    extrude(amount=CORTAR_EXTRUIR4_DEPTH, mode=Mode.SUBTRACT)

    # Croquis3 → Saliente-Extruir3 (add)
    with BuildSketch(Plane.XY.offset(2)):
        with BuildLine():
            Line((-1.252011547, -23.28358209), (-1.252011547, -16.540341587))
            ThreePointArc((-1.252011547, -16.540341587), (-2.377695965, -16.614909121), (-3.502011547, -16.70786179))
            Line((-3.502011547, -16.70786179), (-3.502011547, -23.28358209))
            Line((-3.502011547, -23.28358209), (-1.252011547, -23.28358209))
        make_face()
        with BuildLine():
            Line((8.997988453, -23.28358209), (8.997988453, -16.70786179))
            ThreePointArc((8.997988453, -16.70786179), (7.873672871, -16.614909121), (6.747988453, -16.540341587))
            Line((6.747988453, -16.540341587), (6.747988453, -23.28358209))
            Line((6.747988453, -23.28358209), (8.997988453, -23.28358209))
        make_face()
    extrude(amount=SALIENTE_EXTRUIR3_DEPTH)

    # Croquis4 → Cortar-Extruir1 (cut)
    with BuildSketch(Plane.ZY.offset(3.502011547).offset(CORTAR_EXTRUIR1_START)):
        with BuildLine():
            Line((17, -16.70786179), (17, -23.28358209))
            Line((17, -23.28358209), (2, -23.28358209))
            ThreePointArc((2, -23.28358209), (8.868759287, -18.555786805), (17, -16.70786179))
        make_face()
    extrude(amount=CORTAR_EXTRUIR1_DEPTH, mode=Mode.SUBTRACT)


solid = part.part
